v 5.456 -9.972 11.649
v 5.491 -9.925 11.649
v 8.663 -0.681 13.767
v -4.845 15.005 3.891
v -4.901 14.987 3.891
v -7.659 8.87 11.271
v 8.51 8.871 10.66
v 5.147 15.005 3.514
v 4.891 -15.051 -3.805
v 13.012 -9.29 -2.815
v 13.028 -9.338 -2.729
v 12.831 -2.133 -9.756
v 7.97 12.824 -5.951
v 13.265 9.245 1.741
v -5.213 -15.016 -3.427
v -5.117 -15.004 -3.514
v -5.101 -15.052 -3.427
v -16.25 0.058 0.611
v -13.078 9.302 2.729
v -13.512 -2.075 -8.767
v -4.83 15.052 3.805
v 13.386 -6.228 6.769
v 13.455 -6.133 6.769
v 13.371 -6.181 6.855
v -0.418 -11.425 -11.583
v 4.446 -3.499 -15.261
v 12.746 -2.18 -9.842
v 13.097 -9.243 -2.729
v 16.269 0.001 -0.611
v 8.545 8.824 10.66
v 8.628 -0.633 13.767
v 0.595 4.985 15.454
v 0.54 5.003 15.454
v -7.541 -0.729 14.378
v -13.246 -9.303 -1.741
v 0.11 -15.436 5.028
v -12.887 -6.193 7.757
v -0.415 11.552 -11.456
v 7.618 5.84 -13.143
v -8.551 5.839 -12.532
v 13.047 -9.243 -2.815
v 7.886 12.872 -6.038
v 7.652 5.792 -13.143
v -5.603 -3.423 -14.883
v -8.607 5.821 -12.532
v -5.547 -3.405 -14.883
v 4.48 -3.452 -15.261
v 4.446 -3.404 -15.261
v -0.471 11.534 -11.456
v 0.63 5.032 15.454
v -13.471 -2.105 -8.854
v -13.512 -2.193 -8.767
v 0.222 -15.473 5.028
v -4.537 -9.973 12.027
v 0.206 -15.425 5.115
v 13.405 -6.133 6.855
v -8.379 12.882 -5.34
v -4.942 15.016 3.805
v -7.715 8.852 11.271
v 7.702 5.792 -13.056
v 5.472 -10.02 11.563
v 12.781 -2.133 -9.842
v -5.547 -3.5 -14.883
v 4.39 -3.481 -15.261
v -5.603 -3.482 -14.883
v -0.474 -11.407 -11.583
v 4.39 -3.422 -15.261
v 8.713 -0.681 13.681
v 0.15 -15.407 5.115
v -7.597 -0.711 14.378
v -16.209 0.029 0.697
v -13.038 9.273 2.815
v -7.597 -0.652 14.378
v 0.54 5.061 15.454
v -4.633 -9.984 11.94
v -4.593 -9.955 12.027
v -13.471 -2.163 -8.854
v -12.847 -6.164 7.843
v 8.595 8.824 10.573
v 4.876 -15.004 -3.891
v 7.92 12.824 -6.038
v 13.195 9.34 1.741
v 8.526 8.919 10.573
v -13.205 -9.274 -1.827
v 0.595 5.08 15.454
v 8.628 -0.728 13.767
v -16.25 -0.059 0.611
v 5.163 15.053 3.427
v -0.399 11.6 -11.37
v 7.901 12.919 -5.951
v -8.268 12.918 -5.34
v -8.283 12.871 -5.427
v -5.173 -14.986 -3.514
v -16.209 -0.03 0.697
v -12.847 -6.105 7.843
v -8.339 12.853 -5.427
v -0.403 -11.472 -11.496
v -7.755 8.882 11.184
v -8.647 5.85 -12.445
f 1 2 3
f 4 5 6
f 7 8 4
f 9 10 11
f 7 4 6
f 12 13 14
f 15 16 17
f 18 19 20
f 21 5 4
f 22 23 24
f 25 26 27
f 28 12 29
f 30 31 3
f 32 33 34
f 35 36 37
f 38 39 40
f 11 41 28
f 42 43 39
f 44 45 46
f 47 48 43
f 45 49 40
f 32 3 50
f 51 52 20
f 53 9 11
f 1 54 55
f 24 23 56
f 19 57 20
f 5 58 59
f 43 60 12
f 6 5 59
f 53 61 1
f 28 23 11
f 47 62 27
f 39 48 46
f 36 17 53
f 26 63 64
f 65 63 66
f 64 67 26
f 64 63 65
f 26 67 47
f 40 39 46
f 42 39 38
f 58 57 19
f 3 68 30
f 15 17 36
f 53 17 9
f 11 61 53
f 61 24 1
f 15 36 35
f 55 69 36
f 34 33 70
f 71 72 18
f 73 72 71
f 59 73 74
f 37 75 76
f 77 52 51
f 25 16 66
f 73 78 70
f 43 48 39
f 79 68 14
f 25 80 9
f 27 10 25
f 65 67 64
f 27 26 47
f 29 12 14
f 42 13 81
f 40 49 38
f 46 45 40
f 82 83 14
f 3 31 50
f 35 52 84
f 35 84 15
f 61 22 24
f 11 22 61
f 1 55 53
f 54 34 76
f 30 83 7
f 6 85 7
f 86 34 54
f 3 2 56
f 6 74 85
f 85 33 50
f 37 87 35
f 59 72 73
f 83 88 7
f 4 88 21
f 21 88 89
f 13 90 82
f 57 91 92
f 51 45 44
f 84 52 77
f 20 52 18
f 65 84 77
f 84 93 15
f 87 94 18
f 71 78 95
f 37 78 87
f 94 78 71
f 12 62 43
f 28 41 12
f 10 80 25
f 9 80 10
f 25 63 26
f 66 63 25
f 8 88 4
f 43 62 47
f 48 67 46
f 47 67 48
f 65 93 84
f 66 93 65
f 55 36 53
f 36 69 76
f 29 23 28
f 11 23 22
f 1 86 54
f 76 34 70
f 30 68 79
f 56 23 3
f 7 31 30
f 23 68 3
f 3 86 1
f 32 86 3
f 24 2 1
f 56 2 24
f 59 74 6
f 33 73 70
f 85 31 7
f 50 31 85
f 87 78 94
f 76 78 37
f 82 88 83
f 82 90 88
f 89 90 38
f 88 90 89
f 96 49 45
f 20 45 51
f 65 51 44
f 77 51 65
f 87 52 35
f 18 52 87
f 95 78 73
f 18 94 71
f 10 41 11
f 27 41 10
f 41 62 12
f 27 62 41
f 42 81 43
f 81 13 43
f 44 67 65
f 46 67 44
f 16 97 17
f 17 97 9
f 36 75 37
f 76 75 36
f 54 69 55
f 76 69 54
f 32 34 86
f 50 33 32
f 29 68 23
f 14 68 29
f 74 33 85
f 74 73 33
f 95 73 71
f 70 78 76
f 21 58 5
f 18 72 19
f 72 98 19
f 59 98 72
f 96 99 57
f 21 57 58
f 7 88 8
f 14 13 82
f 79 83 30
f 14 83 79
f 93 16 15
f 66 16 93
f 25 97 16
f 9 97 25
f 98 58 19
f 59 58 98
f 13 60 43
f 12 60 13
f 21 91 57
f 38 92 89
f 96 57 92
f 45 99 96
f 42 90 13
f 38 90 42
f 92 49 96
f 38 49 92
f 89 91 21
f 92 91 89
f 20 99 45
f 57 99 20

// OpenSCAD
// Auto-generated OpenSCAD file

    inner_points = 10*[[-0.5132325915335268, -1.4956773870023274, -0.34271512053890807], [0.5132015226290007, 1.4957694784624385, 0.34271512053890807], [-1.3164886558141748, -0.9244174678024033, -0.17406815225290823], [0.4860549449459691, -1.4956217926681488, -0.3804565612375623], [-0.4860860138504952, 1.4957138841282598, 0.3804565612375623], [1.3164575869096489, 0.9245095592625141, 0.17406815225290823], [-1.616896733010238, -4.390779222781e-05, 0.06106693383481107], [1.299680079223296, -0.924271919945941, -0.2728765267863734], [-1.299711148127822, 0.9243640114060518, 0.2728765267863734], [1.616865664105712, 0.0001359992523386863, -0.06106693383481107], [-0.556237595762048, -0.34523719270611647, -1.479672427436971], [-0.4552213282331215, -0.9925171560774508, 1.1940016601646186], [-0.04302053868078421, 1.1504862400262665, -1.1369573068980627], [0.05799572884814228, 0.5032062766549321, 1.5367167807035265], [0.443049940717448, -0.34518159837193774, -1.517413868135625], [0.5440662082463744, -0.992461561743272, 1.1562602194659646], [0.7602355255998638, 0.579226320826342, -1.3056042751840629], [0.8612517931287903, -0.06805364254499237, 1.3680698124175268], [-0.8566456729581111, 0.5791363673040587, -1.2445373413492518], [-0.7556294054291846, -0.06814359606727556, 1.4291367462523379], [-0.043371596438175015, -1.137724291379308, -1.1496229384598298], [0.019059890311353907, -1.5377653089795797, 0.5027985225178162], [0.7870310455255046, 1.282407060551355, -0.5950982249693593], [0.8494625322750335, 0.8823660429510828, 1.0573232360082867], [-1.3430672101137342, -0.21340632570331178, -0.8767464116734562], [-1.2806357233642052, -0.6134473433035833, 0.7756750493041897], [-0.8298501530324705, 1.2823171070290713, -0.5340312911345482], [-0.7674186662829414, 0.8822760894287998, 1.1183901698430978], [1.2731015249237372, -0.21326077784684974, -0.9755547862069215], [1.3355330116732662, -0.6133017954471214, 0.6768666747707244]];

    outer_points = 10*[[-1.6180339887093724, 0.0, -1.1451363168900623e-05], [1.6180339887093724, 0.0, 1.1451363168900623e-05], [-1.3090169943343848, -0.9510565162945183, -1.0363544707418131e-05], [-1.3090169943499435, 0.9510565162945183, -8.165150117381781e-06], [1.3090169943499435, -0.9510565162945183, 8.165150117381781e-06], [1.3090169943343848, 0.9510565162945183, 1.0363544707418131e-05], [-0.49999999997489053, -1.538841768586599, -5.317204411630996e-06], [-0.5000000000000652, 1.538841768586599, -1.7601272442682922e-06], [0.5000000000000652, -1.538841768586599, 1.7601272442682922e-06], [0.49999999997489053, 1.538841768586599, 5.317204411630996e-06], [-0.8090267354638724, -0.2628671468326607, 1.3763758909435393], [-0.8090072532411997, -0.2628639652861217, -1.3763879499280285], [0.8090072532455, -0.2628671468326607, 1.3763873423067081], [0.8090267354681727, -0.2628639652861217, -1.3763764985648597], [-0.5000097411044434, 0.6881893694618576, 1.3763791771565905], [-0.49999025888177073, 0.6881925510083967, -1.376384663714977], [0.4999902588705123, 0.6881893694618576, 1.3763862544882464], [0.500009741093185, 0.6881925510083967, -1.3763775863833212], [-9.741104378259176e-06, -0.8506523991247412, 1.376380937283835], [9.741118294443999e-06, -0.8506492175782021, -1.3763829035877326], [-1.3090230146835373, 0.42532442102378687, 0.8506420355587297], [-1.3090109740077491, 0.4253263873276848, -0.8506595811016057], [1.309010974000791, 0.42532442102378687, 0.8506605642535546], [1.309023014676579, 0.4253263873276848, -0.8506410524067808], [-0.809023014683472, -1.1135173475628122, 0.850643795685974], [-0.8090109740076838, -1.1135153812589142, -0.8506578209743614], [0.8090109740259004, -1.1135173475628122, 0.8506552470491429], [0.8090230147016886, -1.1135153812589142, -0.8506463696111926], [-6.020349152492207e-06, 1.3763809373183054, 0.8506523991034373], [6.020326635632171e-06, 1.3763829036222033, -0.8506492175568982]];

    // Convex hull for inner set (I)
    module inner_hull() {
        hull() {
            for (p = inner_points) {
                translate(p) sphere(r=0.1);
            }
        }
    }

    // Convex hull for outer set (O) minus inner hull (O \ I)
    module outer_minus_inner() {
        difference() {
            hull() {
                for (p = outer_points) {
                    translate(p) sphere(r=0.1);
                }
            }
            inner_hull(); // Subtract inner hull
        }
    }

    // Convex hull for outer set (O) minus all translated inner hulls
    module outer_minus_AllTranslationInner() {
        difference() {
            hull() {
                for (p = outer_points) {
                    translate(p) sphere(r=0.1);
                }
            }
            hull() {
                translate([0,0,50]) inner_hull();
                translate([0,0,-50]) inner_hull();
            }; // Subtract translated inner hulls
        }
    }

    // Difference between outer_minus_inner and outer_minus_AllTranslationInner
    module outer_minus_inner_diff() {
        difference() {
            // Outer minus inner
            difference() {
                hull() {
                    for (p = outer_points) {
                        translate(p) sphere(r=0.1);
                    }
                }
                inner_hull();
            }

            // Subtract Outer minus AllTranslationInner
            difference() {
                hull() {
                    for (p = outer_points) {
                        translate(p) sphere(r=0.1);
                    }
                }
                hull() {
                    translate([0,0,50]) inner_hull();
                    translate([0,0,-50]) inner_hull();
                };
            }
        }
    }

    // Rendering all with colors applied
    color([1, 0, 0, 0.5]) inner_hull(); // Transparent red
    
